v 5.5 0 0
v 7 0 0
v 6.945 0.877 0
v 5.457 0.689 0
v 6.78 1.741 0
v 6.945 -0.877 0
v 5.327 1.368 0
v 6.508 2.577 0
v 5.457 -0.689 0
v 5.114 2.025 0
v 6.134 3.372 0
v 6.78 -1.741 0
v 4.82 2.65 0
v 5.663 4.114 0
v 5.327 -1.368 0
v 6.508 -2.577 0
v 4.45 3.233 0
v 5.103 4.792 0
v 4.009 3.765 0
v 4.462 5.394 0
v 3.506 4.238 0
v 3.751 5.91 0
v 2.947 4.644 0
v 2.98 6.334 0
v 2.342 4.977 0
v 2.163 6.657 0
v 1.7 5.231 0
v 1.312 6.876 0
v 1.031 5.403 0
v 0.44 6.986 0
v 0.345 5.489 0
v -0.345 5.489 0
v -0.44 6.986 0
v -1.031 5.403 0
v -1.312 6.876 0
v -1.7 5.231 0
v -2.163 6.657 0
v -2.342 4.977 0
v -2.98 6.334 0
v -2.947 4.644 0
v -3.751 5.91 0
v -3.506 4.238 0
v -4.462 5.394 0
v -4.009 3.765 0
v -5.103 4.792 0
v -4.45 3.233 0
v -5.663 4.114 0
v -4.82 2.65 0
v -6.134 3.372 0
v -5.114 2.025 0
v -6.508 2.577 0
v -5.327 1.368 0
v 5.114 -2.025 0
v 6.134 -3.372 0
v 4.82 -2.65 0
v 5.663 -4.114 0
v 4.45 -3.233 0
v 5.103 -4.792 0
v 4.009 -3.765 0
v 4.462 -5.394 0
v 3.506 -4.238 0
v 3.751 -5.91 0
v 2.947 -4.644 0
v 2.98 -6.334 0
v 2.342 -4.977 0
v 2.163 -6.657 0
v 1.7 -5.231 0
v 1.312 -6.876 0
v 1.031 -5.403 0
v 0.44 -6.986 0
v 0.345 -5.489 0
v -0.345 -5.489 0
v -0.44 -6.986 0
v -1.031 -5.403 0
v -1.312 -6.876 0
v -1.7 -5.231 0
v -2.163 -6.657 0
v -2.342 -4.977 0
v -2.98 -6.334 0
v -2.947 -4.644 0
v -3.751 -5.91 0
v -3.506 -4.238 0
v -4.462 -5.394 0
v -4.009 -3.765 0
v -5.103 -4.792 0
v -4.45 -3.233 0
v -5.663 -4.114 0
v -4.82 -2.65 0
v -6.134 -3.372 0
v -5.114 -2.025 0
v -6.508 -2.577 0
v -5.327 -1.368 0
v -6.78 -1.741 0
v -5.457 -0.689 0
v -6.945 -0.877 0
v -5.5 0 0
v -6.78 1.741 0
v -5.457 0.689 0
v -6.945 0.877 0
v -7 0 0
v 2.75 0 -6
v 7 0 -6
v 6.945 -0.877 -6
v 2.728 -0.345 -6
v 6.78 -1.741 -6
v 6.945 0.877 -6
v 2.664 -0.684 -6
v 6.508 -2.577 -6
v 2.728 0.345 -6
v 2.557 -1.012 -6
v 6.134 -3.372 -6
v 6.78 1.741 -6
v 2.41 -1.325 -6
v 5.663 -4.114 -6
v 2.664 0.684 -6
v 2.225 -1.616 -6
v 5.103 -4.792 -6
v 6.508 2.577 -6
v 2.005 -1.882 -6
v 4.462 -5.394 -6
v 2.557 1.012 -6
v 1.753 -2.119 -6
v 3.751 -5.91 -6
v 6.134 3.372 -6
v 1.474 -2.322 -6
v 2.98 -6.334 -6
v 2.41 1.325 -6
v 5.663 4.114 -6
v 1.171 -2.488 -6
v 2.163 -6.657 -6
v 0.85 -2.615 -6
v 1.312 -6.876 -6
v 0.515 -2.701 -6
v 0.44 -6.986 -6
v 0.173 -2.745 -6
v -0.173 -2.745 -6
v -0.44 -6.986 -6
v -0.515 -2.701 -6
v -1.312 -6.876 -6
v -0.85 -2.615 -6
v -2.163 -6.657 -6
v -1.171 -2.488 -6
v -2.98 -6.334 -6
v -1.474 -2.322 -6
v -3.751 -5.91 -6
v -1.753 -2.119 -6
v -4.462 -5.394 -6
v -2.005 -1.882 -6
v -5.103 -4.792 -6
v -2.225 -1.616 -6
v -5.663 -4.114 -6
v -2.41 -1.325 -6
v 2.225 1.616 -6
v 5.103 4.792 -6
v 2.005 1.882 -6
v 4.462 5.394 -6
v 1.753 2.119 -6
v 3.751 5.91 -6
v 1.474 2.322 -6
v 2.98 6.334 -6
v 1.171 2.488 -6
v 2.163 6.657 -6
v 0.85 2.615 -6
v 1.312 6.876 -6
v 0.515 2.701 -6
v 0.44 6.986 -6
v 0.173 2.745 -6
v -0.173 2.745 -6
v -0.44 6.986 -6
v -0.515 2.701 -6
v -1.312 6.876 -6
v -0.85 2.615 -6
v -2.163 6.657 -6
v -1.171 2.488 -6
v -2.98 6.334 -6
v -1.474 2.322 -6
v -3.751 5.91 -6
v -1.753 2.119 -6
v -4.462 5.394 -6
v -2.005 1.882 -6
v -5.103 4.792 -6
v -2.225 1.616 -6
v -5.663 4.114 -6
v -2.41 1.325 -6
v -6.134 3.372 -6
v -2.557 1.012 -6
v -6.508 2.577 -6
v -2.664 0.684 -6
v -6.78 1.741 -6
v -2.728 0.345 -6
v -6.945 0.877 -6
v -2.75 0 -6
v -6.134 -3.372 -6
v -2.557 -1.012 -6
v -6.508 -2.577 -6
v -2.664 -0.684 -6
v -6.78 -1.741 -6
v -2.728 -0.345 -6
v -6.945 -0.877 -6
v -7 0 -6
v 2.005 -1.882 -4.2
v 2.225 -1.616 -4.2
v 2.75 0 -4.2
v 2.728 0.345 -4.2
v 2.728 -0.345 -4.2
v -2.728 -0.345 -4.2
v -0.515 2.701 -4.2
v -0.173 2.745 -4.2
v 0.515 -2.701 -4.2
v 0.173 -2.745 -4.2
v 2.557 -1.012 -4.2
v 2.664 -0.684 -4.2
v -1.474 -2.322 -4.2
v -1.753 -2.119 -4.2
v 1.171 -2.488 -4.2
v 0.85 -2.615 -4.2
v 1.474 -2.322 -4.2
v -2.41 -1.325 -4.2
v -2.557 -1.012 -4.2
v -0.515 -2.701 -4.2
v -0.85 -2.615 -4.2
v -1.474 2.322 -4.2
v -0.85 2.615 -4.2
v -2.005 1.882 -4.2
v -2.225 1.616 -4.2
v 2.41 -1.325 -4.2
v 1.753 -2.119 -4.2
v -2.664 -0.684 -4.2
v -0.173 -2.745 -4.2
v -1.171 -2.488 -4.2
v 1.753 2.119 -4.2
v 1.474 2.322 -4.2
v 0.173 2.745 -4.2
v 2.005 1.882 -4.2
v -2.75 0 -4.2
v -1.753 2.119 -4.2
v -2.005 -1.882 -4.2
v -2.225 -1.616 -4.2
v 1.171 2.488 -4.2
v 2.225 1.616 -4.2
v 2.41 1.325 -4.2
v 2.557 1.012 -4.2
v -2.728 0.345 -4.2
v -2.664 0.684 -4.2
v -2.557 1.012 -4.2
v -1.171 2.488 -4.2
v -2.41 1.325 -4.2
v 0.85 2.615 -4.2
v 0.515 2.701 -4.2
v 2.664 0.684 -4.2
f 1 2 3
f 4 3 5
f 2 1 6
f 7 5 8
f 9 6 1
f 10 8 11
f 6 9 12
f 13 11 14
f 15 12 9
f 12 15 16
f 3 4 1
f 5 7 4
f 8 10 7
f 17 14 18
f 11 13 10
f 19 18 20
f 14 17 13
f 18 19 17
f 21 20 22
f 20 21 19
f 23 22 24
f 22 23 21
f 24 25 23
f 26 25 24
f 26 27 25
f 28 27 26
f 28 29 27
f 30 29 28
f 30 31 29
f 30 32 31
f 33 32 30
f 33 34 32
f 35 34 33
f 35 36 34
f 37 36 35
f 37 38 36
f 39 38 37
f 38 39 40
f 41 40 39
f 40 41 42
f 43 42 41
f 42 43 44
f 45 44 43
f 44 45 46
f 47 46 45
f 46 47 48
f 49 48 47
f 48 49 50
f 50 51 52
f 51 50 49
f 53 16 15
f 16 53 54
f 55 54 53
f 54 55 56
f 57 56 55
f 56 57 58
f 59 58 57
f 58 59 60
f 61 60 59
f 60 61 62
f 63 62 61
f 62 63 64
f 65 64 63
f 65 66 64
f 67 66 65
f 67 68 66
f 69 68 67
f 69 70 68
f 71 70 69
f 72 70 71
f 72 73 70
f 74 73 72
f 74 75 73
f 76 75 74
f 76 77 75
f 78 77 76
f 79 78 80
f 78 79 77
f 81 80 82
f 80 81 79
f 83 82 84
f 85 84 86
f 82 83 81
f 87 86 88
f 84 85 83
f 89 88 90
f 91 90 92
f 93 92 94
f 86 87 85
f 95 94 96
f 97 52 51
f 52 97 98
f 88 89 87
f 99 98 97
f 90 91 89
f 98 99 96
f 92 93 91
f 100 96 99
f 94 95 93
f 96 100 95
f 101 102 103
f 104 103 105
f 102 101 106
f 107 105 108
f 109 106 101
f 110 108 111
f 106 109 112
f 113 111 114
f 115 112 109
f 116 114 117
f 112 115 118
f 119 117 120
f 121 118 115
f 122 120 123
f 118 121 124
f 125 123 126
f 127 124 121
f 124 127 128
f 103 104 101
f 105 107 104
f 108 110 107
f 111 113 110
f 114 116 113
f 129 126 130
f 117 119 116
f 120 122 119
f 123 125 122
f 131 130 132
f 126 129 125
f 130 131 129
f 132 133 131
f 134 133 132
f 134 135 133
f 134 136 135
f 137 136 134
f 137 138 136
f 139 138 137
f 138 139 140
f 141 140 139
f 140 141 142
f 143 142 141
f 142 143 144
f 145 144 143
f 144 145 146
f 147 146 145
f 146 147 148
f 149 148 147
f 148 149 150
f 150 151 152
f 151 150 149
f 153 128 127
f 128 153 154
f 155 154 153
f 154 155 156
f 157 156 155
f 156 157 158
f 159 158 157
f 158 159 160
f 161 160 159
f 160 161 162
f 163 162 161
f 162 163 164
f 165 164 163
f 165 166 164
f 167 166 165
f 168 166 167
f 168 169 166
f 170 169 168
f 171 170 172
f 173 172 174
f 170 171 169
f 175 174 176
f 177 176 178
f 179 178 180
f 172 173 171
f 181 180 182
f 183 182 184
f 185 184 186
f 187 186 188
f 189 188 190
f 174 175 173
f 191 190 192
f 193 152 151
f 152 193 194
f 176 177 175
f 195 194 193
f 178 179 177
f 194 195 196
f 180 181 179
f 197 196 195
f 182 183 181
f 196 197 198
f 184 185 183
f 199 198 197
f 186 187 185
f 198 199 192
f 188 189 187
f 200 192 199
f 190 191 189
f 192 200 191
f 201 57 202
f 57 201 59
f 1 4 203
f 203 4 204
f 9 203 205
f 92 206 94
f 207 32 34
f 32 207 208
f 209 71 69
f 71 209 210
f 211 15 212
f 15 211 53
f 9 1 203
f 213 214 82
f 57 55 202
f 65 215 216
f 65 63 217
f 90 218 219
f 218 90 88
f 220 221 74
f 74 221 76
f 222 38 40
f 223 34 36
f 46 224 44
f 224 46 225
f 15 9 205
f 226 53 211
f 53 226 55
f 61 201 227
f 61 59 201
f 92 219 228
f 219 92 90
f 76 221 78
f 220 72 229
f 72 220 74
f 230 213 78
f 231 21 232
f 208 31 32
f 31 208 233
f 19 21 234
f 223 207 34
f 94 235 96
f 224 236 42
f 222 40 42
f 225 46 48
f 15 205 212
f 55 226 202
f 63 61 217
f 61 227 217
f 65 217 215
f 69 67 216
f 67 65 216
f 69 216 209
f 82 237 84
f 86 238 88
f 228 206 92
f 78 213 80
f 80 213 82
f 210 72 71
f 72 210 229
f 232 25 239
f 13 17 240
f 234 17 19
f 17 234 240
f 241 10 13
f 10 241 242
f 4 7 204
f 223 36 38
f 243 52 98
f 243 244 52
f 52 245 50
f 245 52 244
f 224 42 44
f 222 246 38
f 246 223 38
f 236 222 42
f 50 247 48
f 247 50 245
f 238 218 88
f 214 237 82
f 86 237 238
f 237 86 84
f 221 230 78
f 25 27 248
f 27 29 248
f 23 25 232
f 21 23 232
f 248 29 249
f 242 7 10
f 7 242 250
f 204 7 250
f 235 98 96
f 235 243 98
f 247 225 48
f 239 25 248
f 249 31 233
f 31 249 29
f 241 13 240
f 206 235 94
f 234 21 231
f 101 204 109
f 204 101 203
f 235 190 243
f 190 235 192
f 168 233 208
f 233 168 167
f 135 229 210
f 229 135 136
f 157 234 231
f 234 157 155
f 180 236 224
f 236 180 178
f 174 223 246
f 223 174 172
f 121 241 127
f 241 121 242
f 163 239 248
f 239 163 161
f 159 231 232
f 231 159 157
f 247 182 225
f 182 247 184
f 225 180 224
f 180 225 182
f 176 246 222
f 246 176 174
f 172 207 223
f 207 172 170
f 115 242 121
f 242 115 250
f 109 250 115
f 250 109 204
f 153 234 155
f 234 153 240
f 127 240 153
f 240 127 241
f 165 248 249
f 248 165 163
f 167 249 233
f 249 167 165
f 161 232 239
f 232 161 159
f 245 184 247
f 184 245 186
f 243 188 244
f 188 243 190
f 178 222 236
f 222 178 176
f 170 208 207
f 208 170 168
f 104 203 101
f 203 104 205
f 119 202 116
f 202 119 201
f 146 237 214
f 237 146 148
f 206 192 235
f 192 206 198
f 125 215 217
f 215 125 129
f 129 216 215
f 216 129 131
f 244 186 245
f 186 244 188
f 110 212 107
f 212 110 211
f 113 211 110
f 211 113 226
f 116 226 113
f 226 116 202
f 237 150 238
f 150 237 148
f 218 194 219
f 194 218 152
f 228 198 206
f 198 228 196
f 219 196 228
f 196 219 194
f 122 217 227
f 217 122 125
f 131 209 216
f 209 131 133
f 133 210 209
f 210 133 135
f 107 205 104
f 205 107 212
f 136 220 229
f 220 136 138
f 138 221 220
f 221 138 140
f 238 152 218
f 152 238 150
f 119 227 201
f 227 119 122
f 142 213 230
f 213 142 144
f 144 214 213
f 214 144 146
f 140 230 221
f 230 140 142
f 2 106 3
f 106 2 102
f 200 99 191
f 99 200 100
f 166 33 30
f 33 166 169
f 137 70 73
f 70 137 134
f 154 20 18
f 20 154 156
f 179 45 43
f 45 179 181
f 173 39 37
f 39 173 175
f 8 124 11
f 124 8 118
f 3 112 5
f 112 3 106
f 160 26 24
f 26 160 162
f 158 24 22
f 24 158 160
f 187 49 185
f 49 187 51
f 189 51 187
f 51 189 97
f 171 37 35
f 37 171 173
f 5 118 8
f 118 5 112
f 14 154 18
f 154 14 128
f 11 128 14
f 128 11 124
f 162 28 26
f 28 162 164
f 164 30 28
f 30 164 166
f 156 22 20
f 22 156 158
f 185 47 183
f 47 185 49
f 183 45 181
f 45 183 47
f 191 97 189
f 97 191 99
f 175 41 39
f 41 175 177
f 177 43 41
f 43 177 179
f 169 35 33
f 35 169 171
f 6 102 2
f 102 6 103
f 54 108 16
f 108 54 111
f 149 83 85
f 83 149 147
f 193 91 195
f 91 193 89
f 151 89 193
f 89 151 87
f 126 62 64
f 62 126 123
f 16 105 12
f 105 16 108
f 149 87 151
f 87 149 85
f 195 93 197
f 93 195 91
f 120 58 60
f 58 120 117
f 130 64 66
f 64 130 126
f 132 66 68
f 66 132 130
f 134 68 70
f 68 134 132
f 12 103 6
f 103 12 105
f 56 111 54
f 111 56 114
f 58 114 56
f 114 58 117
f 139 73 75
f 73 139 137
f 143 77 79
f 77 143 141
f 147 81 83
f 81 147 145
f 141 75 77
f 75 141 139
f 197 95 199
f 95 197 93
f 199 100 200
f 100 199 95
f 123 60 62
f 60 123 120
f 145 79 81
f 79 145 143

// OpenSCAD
$fn = 50;


difference() {
	union() {
		translate(v = [0, 0, -6.0000000000]) {
			cylinder(h = 6, r = 7.0000000000);
		}
		cylinder(h = 0, r = 17.0000000000);
	}
	union() {
		translate(v = [0, 0, 0]) {
			rotate(a = [0, 0, 0]) {
				difference() {
					union() {
						#translate(v = [0, 0, -6.0000000000]) {
							cylinder(h = 6, r = 2.2500000000);
						}
						#translate(v = [0, 0, -4.2000000000]) {
							cylinder(h = 4.2000000000, r = 7.0000000000, r1 = 2.7500000000, r2 = 5.5000000000);
						}
						#translate(v = [0, 0, -6.0000000000]) {
							cylinder(h = 6, r = 2.7500000000);
						}
						#translate(v = [0, 0, -6.0000000000]) {
							cylinder(h = 6, r = 2.2500000000);
						}
					}
					union();
				}
			}
		}
	}
}
